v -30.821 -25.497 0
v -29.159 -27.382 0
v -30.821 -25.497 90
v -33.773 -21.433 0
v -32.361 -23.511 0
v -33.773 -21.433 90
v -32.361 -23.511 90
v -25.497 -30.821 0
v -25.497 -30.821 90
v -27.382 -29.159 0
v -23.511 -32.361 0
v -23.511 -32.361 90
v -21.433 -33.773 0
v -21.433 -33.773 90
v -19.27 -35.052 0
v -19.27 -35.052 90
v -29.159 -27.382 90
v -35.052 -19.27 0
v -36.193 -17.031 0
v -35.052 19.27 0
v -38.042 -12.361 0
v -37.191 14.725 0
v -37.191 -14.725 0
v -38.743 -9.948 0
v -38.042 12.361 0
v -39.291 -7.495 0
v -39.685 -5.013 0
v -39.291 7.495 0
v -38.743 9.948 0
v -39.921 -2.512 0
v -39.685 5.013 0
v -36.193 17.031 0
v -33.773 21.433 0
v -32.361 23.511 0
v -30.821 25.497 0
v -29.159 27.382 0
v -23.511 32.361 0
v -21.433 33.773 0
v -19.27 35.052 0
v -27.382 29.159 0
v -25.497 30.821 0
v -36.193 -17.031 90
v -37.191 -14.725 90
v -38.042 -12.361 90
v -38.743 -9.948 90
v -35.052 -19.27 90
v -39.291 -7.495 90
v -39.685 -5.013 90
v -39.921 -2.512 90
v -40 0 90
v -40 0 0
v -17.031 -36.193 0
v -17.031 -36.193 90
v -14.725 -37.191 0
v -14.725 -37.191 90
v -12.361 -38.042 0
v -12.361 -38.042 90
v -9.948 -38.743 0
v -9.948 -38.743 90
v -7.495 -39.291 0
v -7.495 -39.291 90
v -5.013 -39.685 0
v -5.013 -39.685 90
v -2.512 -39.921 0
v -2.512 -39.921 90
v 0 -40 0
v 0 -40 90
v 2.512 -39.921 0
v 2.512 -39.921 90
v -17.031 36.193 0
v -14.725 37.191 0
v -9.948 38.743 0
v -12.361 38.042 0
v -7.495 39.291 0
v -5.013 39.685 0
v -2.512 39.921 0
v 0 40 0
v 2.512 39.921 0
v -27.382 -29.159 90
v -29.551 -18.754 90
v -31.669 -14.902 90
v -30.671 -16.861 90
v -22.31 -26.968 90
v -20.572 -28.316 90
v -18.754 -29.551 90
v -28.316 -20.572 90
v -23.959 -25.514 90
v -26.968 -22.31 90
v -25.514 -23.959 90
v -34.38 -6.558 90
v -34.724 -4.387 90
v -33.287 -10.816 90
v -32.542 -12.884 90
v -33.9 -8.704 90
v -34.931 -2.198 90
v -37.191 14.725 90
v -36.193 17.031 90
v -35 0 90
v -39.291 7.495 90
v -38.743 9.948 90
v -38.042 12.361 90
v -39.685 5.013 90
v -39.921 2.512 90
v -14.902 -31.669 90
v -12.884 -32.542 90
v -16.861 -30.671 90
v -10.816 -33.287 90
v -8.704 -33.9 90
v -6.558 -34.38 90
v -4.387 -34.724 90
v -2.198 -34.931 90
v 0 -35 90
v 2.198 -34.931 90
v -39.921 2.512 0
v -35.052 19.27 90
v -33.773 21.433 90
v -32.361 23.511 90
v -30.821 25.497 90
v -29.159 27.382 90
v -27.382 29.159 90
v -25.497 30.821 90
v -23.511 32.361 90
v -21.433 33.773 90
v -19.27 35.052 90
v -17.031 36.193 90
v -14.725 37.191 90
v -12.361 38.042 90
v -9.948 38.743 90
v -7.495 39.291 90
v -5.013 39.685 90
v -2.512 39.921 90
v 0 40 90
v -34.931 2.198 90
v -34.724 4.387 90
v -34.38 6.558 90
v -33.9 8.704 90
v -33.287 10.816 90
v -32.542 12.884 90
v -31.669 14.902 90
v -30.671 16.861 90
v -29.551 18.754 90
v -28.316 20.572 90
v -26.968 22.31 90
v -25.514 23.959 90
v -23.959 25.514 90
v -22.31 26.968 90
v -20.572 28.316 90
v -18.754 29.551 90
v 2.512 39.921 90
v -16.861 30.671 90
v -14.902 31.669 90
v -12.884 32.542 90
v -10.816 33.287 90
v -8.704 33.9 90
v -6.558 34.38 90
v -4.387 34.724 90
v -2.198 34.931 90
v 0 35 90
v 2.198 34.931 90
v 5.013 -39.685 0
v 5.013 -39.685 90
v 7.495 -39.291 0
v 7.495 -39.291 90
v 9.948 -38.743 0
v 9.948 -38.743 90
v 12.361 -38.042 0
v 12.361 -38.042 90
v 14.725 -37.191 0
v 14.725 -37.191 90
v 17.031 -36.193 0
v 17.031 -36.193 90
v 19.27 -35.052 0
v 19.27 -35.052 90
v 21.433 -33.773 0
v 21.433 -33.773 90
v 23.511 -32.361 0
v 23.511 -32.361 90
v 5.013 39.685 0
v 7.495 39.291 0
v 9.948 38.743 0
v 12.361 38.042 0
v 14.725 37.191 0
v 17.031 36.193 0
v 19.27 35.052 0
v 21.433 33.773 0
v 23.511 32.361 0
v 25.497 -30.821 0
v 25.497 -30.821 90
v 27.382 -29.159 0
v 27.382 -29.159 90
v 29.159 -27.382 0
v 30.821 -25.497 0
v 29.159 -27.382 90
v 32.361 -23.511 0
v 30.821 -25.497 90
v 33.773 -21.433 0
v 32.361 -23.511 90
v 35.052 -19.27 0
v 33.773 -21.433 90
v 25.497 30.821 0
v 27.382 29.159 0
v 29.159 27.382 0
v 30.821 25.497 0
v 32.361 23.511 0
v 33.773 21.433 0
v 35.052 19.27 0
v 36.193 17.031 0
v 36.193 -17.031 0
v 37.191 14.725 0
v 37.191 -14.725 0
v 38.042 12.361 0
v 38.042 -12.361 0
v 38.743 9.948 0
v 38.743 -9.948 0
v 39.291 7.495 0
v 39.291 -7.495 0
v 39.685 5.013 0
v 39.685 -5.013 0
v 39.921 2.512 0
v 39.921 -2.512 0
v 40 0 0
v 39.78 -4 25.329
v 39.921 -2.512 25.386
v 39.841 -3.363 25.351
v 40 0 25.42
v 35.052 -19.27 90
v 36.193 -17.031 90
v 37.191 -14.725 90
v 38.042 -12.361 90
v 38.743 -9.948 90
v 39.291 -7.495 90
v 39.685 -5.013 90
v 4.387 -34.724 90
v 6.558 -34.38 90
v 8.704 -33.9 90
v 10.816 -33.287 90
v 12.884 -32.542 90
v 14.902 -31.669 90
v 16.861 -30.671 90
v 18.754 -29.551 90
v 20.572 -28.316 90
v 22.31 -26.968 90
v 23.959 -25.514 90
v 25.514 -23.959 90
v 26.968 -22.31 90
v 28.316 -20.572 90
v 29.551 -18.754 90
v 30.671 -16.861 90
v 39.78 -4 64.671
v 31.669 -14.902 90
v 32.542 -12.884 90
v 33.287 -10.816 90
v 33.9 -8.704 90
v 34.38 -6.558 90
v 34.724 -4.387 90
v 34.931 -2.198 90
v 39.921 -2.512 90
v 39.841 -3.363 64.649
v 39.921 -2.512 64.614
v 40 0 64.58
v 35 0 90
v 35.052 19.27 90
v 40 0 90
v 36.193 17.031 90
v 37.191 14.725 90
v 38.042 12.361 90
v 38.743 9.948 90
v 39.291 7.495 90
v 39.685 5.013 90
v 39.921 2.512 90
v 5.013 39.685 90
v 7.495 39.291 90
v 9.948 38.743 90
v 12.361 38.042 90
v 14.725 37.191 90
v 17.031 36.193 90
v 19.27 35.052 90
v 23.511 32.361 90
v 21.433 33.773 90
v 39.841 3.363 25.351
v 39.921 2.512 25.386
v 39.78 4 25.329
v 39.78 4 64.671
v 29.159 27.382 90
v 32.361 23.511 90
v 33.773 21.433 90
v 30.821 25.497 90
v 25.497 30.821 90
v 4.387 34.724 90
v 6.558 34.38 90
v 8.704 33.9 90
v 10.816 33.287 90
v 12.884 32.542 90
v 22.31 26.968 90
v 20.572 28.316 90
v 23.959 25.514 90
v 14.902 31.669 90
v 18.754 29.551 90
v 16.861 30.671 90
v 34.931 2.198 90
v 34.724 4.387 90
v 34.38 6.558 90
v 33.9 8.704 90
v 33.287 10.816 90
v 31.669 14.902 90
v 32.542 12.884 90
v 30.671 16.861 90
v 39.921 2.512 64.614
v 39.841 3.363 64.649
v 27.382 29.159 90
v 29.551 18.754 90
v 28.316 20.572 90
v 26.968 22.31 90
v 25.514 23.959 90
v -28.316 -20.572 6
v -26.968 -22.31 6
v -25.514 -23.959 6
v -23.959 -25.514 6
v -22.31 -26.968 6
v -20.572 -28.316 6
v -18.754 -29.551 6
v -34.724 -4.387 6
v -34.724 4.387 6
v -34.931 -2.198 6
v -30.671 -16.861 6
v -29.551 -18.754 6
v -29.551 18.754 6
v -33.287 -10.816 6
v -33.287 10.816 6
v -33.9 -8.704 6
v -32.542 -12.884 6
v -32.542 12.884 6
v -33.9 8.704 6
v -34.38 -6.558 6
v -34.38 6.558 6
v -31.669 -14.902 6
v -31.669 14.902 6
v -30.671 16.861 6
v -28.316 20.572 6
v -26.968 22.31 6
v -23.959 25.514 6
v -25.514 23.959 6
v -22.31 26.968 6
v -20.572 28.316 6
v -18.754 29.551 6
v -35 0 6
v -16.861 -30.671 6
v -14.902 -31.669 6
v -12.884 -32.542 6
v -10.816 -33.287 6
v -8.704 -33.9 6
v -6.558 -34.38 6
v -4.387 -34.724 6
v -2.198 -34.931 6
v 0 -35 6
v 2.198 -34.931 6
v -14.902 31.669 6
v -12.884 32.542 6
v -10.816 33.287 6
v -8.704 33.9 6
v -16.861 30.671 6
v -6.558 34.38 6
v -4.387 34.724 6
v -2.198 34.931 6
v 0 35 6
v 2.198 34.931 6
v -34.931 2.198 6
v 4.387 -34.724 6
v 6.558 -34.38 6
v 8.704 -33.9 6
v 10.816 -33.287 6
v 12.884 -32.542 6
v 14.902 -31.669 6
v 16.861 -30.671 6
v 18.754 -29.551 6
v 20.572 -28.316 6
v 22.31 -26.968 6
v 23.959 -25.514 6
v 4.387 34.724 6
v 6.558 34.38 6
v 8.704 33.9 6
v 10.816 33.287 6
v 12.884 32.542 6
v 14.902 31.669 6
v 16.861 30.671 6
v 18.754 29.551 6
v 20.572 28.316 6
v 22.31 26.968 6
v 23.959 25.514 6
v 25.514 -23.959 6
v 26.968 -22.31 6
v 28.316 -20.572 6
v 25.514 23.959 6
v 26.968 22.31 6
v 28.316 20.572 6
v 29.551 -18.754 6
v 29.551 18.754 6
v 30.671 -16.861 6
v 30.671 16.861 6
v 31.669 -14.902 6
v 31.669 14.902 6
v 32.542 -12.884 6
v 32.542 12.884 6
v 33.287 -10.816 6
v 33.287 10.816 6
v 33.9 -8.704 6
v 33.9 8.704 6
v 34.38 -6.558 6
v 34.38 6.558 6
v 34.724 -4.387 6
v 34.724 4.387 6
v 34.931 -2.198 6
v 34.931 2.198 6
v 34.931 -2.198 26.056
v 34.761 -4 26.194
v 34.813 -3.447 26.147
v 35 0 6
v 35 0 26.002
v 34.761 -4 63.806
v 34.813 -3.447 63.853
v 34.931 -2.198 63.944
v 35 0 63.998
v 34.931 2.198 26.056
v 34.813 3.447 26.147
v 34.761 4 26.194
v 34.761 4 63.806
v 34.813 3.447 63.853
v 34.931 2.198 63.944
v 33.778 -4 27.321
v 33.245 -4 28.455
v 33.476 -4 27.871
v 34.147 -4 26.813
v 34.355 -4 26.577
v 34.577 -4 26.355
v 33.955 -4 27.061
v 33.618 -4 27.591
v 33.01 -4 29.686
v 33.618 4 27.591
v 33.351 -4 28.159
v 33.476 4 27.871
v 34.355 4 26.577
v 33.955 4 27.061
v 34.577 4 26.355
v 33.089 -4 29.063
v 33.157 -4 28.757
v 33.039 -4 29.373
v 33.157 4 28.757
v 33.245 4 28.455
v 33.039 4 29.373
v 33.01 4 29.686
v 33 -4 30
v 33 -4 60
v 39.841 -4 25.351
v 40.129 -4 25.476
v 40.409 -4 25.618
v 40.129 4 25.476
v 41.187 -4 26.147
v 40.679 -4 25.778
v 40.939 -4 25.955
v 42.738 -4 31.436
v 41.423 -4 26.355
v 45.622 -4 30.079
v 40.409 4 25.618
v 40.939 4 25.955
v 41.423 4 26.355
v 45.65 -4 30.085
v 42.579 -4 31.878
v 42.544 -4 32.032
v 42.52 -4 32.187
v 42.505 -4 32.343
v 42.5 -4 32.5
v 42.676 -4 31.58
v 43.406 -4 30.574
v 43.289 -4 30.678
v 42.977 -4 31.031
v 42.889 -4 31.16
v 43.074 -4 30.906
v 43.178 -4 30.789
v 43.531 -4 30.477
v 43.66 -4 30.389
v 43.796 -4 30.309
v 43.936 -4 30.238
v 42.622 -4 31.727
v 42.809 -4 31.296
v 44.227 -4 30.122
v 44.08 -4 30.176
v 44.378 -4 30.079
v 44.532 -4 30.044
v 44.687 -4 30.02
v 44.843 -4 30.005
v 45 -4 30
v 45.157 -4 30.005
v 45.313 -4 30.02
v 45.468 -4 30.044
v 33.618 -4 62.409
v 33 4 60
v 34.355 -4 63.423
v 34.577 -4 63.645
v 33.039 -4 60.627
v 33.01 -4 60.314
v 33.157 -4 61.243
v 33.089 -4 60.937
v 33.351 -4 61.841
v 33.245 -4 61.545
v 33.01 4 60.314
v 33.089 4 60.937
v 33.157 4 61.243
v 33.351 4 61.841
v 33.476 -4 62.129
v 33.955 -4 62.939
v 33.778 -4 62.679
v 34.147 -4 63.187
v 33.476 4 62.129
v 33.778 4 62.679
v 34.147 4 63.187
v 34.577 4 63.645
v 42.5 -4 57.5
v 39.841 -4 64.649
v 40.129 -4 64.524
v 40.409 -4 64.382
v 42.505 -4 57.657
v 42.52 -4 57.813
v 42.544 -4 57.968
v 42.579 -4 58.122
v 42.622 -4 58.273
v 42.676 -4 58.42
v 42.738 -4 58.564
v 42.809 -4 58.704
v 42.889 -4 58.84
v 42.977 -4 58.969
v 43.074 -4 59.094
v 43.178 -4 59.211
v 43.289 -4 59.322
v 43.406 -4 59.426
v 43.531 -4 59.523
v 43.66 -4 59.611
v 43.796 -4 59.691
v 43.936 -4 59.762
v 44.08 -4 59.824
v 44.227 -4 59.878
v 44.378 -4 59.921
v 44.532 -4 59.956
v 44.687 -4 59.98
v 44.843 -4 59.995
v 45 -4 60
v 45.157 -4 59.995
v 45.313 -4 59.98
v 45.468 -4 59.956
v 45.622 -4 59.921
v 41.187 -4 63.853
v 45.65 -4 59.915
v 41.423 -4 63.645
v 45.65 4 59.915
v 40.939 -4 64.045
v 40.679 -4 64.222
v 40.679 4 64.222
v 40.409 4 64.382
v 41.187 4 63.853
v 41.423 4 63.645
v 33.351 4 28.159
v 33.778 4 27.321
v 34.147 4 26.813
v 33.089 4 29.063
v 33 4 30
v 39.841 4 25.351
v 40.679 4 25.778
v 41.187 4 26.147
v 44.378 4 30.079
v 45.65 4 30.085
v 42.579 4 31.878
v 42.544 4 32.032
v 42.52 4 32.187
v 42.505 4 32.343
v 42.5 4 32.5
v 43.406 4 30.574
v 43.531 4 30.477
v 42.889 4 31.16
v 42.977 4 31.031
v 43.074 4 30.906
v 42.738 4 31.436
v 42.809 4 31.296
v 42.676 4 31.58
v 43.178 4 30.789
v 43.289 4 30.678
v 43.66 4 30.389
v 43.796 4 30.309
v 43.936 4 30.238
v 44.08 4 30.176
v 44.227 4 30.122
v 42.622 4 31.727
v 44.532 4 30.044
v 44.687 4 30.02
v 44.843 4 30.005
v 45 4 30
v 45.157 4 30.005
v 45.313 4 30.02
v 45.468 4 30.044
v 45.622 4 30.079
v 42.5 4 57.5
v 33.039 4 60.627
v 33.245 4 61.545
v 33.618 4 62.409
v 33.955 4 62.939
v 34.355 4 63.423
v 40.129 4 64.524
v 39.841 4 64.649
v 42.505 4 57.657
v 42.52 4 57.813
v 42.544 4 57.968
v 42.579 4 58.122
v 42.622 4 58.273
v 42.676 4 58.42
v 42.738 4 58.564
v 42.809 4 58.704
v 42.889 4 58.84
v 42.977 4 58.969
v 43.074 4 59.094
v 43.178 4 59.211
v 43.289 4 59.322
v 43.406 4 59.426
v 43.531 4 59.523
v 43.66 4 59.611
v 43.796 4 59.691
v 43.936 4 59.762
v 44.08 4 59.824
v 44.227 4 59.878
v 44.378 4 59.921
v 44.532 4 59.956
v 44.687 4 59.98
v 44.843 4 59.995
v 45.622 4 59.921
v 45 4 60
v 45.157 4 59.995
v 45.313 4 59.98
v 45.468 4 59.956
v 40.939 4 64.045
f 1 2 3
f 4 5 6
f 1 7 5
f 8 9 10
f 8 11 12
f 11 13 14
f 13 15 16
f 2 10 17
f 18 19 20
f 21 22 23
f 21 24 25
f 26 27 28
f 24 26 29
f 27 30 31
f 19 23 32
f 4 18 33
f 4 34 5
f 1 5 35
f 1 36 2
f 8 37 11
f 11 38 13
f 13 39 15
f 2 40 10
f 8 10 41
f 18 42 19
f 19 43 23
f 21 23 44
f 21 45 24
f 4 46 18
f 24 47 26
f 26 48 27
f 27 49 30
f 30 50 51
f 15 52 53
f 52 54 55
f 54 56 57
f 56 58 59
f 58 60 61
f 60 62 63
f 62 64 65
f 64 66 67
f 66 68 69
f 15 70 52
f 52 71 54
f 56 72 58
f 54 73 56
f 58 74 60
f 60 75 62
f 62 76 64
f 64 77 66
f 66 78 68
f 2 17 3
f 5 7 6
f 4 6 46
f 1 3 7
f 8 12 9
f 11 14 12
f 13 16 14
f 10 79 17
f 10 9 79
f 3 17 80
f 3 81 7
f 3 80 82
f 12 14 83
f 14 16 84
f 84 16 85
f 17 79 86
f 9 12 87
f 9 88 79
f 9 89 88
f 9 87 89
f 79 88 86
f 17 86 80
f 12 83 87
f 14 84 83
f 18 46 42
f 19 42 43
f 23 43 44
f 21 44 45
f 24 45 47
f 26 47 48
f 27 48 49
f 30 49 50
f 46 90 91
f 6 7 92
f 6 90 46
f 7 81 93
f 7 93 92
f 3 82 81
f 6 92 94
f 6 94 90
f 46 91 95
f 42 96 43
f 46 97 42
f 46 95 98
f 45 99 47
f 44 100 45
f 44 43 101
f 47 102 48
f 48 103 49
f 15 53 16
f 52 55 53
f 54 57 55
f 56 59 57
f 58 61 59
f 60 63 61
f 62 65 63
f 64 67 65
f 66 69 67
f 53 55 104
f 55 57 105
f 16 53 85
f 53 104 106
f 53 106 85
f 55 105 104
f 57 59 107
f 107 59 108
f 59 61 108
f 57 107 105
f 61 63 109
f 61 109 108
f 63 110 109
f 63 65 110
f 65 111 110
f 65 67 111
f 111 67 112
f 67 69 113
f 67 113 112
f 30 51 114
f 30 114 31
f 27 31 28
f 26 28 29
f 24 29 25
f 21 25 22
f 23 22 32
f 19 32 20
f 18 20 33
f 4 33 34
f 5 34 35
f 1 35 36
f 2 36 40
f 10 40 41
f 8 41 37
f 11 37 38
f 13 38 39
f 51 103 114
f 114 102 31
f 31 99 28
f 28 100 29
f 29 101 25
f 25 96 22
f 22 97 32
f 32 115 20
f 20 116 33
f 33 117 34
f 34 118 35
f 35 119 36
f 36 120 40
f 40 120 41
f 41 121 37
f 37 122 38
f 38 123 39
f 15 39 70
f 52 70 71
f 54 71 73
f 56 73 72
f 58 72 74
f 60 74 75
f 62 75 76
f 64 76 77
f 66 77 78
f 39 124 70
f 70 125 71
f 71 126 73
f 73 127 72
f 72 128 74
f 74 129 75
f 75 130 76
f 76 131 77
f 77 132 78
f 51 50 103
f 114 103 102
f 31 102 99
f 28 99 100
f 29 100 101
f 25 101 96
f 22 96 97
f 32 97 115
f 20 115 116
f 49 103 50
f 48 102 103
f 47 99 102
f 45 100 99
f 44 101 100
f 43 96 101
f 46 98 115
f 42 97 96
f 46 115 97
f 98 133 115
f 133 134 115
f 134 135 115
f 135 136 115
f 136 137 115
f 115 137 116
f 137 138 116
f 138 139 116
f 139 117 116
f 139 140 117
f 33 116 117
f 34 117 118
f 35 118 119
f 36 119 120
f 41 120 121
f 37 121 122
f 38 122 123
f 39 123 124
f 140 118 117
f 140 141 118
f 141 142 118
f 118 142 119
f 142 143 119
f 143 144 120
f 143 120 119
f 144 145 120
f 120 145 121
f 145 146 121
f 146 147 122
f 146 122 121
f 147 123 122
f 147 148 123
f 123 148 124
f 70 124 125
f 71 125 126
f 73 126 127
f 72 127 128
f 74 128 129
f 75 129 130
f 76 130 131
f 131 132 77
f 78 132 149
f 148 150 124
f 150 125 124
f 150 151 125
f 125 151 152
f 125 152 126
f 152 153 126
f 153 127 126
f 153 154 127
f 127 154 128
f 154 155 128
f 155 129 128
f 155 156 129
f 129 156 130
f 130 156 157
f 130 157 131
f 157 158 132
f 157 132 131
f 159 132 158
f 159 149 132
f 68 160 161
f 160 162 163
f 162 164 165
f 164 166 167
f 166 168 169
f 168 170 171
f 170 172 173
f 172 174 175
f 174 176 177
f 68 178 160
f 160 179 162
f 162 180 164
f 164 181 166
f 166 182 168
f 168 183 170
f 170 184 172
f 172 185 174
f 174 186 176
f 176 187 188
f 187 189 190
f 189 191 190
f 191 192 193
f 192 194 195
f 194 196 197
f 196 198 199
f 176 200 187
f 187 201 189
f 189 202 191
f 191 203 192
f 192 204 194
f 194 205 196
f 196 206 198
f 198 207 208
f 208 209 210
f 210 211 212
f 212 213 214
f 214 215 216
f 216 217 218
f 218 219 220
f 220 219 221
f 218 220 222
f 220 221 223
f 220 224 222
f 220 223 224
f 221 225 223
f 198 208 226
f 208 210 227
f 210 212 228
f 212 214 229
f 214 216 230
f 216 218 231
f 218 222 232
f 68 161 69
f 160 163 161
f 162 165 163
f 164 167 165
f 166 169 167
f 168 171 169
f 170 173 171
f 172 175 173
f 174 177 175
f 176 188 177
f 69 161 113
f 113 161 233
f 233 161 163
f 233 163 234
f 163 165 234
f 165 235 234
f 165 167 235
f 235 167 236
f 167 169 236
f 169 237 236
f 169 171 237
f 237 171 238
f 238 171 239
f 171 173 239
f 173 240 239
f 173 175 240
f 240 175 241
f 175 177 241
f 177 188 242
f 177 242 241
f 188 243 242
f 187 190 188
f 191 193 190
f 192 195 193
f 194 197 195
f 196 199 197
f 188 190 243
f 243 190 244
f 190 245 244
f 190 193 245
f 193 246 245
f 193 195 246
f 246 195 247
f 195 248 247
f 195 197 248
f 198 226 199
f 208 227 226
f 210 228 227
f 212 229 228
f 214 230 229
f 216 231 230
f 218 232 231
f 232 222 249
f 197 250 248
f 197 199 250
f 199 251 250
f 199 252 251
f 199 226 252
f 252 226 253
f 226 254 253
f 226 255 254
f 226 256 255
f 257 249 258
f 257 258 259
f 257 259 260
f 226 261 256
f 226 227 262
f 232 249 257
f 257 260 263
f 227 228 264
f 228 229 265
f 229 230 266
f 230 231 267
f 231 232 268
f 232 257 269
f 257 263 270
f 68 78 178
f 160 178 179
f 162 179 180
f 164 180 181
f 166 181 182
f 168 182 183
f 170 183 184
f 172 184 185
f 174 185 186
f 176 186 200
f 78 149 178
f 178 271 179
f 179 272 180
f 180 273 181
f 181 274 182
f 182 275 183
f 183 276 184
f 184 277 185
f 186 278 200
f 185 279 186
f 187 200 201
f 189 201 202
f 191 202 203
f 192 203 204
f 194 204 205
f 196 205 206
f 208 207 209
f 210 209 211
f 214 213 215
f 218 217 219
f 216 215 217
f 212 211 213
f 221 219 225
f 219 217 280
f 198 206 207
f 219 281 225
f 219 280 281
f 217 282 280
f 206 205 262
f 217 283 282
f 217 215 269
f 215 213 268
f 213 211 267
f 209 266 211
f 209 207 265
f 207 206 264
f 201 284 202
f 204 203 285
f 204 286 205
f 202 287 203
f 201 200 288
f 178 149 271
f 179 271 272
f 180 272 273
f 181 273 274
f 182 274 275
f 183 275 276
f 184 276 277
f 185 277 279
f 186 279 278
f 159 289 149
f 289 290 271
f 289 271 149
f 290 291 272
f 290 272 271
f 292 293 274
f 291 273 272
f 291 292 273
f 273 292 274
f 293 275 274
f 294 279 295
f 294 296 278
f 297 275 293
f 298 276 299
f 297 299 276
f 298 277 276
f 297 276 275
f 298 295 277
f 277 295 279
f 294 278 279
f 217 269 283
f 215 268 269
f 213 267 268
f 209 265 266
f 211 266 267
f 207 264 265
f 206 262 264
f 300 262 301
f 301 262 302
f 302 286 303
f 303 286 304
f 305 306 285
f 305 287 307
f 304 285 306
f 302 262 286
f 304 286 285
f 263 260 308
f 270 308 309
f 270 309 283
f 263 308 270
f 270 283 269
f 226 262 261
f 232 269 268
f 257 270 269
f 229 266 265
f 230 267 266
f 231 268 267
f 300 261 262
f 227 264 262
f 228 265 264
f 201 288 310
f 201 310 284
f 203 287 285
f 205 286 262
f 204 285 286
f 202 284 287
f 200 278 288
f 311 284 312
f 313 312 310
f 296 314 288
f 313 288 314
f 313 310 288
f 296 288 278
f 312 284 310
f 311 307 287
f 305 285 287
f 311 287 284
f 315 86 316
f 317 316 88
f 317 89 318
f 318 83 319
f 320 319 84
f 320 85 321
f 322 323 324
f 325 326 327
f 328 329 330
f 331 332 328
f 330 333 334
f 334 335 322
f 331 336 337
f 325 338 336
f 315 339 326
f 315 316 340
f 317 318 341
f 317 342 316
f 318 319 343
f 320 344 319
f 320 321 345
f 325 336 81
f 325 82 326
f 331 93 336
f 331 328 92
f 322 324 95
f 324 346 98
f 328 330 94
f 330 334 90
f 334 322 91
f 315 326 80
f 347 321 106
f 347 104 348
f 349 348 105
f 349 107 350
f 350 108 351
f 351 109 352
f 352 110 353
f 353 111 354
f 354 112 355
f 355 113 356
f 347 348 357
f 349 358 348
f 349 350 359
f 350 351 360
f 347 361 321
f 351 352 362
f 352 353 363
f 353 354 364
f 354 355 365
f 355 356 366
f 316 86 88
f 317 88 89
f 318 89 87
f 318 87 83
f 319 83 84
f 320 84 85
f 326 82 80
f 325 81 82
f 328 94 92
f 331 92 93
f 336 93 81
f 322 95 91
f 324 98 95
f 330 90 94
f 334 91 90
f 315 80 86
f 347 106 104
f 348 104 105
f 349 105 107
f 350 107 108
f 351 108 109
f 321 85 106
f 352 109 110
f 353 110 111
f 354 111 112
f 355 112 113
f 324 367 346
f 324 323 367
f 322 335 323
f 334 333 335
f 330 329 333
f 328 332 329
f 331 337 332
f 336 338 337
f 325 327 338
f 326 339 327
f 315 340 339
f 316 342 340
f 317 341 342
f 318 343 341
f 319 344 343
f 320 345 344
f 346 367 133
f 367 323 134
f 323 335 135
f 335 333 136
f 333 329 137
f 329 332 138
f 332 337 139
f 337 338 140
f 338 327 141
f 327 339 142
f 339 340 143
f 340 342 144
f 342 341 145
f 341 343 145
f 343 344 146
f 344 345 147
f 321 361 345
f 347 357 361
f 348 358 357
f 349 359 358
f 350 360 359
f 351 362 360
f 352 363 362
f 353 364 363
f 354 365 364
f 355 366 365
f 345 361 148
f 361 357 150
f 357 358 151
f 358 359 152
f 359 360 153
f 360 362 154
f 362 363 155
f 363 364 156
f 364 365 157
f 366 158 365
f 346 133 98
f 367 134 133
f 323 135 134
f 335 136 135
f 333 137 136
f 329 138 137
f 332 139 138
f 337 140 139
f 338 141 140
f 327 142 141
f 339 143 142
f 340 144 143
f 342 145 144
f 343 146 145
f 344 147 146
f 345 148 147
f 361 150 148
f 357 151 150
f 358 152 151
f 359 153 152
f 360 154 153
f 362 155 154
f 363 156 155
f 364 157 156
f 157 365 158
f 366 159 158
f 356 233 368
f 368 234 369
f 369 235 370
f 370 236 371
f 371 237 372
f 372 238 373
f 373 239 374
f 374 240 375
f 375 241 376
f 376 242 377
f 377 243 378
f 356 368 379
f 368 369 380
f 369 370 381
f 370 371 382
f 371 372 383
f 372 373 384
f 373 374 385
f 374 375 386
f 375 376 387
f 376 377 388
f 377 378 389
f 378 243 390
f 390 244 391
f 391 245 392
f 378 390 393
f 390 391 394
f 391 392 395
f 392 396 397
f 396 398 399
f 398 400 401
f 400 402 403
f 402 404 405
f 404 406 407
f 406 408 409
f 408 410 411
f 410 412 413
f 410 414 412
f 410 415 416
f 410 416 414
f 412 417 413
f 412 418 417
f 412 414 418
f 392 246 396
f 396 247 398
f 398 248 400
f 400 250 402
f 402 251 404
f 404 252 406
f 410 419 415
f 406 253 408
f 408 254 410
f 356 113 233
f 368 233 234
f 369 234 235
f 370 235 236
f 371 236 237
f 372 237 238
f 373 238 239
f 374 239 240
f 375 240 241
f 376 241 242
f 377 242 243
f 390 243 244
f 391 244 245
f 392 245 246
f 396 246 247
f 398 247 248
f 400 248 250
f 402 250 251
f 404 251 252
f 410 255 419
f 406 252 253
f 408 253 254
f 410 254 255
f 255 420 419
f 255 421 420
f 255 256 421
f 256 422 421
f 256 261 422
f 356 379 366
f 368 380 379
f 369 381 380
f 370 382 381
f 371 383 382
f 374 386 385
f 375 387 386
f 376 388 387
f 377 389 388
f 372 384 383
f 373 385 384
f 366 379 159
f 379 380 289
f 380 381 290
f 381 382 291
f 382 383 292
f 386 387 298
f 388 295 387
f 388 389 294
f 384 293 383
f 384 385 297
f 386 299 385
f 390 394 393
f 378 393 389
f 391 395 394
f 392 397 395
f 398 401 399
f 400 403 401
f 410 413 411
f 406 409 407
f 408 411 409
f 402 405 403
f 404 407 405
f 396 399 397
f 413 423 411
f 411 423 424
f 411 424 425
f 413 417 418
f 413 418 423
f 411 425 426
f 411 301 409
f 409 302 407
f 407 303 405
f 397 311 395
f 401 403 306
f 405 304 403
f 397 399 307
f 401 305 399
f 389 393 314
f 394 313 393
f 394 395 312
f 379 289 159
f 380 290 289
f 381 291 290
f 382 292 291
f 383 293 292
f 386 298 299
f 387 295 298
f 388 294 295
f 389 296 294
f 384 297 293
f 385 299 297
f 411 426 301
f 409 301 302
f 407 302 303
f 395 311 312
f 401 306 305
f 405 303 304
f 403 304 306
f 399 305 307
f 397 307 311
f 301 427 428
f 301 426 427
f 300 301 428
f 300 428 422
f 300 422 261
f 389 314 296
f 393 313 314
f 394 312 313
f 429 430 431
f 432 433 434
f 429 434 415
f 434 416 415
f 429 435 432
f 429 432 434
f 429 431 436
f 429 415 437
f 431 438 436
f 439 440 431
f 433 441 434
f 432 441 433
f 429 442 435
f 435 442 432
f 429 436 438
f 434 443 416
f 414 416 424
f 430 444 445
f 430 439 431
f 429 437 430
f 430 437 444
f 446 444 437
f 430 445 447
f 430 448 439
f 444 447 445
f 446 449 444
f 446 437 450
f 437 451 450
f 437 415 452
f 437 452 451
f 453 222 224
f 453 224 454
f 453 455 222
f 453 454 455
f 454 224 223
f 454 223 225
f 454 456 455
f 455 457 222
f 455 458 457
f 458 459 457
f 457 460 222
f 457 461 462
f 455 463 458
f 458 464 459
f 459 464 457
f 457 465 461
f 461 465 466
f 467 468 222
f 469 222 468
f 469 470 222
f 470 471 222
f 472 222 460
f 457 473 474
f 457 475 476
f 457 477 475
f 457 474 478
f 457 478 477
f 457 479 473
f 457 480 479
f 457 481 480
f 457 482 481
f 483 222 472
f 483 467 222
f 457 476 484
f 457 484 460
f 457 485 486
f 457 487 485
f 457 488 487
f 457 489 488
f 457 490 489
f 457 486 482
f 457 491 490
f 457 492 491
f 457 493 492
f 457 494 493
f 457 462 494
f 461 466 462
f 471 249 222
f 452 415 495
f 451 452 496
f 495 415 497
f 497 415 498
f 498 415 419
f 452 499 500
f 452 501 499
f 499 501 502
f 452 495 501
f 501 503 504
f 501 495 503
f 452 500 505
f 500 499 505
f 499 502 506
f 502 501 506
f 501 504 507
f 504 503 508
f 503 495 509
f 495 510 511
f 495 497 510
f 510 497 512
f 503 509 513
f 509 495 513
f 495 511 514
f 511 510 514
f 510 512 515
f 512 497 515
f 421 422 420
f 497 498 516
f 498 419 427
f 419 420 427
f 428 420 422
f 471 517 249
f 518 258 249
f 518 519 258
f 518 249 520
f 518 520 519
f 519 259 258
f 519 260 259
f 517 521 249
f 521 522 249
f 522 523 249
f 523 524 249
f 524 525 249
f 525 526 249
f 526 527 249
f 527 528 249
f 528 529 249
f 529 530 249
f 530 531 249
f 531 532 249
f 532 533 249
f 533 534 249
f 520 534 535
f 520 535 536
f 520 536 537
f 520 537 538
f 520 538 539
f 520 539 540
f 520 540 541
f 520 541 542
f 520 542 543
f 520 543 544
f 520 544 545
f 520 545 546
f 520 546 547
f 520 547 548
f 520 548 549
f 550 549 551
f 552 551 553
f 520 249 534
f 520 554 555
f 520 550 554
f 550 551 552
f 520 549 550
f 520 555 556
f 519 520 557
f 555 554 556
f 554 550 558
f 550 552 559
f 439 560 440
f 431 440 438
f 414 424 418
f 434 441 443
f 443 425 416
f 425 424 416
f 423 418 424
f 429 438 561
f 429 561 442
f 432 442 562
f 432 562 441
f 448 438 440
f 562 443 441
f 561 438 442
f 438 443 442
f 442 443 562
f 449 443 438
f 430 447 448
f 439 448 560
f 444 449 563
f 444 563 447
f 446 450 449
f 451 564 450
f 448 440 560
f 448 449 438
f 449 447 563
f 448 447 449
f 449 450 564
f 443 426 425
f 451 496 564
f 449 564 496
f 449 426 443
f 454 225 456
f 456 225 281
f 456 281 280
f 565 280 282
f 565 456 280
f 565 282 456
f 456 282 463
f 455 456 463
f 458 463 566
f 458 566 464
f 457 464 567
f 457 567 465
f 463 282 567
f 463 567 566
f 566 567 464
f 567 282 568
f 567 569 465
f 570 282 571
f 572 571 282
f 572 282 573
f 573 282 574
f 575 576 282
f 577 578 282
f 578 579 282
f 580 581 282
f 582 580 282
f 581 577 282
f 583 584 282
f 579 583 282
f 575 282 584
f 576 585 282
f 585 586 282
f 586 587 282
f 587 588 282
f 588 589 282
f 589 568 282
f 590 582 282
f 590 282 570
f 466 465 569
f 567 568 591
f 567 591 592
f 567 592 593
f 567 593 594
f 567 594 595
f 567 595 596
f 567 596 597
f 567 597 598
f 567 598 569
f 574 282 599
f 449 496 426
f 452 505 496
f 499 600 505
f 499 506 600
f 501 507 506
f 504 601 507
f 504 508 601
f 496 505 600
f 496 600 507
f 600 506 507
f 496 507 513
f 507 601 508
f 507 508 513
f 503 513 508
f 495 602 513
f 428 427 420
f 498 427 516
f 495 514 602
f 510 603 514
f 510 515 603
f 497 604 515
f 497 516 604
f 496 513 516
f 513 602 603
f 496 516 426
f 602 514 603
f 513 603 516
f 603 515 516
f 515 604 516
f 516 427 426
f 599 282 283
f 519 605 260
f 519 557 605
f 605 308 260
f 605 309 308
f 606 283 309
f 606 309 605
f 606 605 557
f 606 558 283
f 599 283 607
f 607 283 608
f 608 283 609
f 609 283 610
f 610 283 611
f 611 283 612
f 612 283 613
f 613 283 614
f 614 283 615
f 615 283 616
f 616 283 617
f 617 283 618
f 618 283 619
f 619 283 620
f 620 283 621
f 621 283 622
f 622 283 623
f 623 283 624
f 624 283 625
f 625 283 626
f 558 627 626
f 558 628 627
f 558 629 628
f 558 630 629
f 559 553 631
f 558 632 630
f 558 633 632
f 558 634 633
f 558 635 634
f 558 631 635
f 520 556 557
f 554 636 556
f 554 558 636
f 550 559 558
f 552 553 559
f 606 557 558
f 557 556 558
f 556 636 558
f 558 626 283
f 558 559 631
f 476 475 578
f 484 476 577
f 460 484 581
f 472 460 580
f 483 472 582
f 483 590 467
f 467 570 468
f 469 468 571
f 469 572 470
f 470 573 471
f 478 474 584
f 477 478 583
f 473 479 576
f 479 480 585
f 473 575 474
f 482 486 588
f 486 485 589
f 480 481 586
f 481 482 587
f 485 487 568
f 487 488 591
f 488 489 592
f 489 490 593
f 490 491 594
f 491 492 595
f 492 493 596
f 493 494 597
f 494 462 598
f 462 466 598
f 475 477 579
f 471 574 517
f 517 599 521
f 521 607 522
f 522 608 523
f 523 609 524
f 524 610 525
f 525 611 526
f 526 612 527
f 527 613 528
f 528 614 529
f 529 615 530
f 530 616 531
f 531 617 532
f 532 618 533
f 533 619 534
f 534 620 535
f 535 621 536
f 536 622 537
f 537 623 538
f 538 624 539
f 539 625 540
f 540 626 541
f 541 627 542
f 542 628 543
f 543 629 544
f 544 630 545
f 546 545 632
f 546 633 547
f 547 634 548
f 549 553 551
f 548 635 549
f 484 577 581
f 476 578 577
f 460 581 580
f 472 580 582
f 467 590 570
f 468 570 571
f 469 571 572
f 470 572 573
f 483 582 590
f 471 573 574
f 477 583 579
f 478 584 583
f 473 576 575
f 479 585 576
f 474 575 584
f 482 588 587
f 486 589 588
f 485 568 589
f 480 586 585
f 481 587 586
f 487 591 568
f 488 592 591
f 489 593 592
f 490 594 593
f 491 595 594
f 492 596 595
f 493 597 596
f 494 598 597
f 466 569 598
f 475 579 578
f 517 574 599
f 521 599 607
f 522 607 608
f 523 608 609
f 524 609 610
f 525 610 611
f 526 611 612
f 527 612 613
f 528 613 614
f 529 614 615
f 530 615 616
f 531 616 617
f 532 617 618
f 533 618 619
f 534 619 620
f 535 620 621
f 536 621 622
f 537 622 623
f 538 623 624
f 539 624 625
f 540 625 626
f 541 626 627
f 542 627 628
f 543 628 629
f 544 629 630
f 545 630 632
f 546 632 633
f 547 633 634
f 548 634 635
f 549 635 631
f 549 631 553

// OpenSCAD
$fn = 100;

// マグカップ本体
difference() {
    // 外側の円筒
    cylinder(h = 90, r = 40, center = false);
    // 内側をくり抜く
    translate([0, 0, 6])
        cylinder(h = 84, r = 35, center = false);
}

// 取手
difference() {
    // 取手の外形
    hull() {
        // マグ本体との接続部分（上）
        translate([38, 0, 60])
            rotate([90, 0, 0])
                cylinder(h = 8, r = 5, center = true);
        // マグ本体との接続部分（下）
        translate([38, 0, 30])
            rotate([90, 0, 0])
                cylinder(h = 8, r = 5, center = true);
        // 取手の外側の頂点
        translate([55, 0, 45])
            rotate([90, 0, 0])
                cylinder(h = 8, r = 5, center = true);
    }
    
    // 取手の穴（D字形の内側）
    hull() {
        // 上部の穴
        translate([45, 0, 57.5])
            rotate([90, 0, 0])
                cylinder(h = 10, r = 2.5, center = true);
        // 下部の穴
        translate([45, 0, 32.5])
            rotate([90, 0, 0])
                cylinder(h = 10, r = 2.5, center = true);
        // 外側の穴
        translate([55, 0, 45])
            rotate([90, 0, 0])
                cylinder(h = 10, r = 12.5, center = true);
    }
}
